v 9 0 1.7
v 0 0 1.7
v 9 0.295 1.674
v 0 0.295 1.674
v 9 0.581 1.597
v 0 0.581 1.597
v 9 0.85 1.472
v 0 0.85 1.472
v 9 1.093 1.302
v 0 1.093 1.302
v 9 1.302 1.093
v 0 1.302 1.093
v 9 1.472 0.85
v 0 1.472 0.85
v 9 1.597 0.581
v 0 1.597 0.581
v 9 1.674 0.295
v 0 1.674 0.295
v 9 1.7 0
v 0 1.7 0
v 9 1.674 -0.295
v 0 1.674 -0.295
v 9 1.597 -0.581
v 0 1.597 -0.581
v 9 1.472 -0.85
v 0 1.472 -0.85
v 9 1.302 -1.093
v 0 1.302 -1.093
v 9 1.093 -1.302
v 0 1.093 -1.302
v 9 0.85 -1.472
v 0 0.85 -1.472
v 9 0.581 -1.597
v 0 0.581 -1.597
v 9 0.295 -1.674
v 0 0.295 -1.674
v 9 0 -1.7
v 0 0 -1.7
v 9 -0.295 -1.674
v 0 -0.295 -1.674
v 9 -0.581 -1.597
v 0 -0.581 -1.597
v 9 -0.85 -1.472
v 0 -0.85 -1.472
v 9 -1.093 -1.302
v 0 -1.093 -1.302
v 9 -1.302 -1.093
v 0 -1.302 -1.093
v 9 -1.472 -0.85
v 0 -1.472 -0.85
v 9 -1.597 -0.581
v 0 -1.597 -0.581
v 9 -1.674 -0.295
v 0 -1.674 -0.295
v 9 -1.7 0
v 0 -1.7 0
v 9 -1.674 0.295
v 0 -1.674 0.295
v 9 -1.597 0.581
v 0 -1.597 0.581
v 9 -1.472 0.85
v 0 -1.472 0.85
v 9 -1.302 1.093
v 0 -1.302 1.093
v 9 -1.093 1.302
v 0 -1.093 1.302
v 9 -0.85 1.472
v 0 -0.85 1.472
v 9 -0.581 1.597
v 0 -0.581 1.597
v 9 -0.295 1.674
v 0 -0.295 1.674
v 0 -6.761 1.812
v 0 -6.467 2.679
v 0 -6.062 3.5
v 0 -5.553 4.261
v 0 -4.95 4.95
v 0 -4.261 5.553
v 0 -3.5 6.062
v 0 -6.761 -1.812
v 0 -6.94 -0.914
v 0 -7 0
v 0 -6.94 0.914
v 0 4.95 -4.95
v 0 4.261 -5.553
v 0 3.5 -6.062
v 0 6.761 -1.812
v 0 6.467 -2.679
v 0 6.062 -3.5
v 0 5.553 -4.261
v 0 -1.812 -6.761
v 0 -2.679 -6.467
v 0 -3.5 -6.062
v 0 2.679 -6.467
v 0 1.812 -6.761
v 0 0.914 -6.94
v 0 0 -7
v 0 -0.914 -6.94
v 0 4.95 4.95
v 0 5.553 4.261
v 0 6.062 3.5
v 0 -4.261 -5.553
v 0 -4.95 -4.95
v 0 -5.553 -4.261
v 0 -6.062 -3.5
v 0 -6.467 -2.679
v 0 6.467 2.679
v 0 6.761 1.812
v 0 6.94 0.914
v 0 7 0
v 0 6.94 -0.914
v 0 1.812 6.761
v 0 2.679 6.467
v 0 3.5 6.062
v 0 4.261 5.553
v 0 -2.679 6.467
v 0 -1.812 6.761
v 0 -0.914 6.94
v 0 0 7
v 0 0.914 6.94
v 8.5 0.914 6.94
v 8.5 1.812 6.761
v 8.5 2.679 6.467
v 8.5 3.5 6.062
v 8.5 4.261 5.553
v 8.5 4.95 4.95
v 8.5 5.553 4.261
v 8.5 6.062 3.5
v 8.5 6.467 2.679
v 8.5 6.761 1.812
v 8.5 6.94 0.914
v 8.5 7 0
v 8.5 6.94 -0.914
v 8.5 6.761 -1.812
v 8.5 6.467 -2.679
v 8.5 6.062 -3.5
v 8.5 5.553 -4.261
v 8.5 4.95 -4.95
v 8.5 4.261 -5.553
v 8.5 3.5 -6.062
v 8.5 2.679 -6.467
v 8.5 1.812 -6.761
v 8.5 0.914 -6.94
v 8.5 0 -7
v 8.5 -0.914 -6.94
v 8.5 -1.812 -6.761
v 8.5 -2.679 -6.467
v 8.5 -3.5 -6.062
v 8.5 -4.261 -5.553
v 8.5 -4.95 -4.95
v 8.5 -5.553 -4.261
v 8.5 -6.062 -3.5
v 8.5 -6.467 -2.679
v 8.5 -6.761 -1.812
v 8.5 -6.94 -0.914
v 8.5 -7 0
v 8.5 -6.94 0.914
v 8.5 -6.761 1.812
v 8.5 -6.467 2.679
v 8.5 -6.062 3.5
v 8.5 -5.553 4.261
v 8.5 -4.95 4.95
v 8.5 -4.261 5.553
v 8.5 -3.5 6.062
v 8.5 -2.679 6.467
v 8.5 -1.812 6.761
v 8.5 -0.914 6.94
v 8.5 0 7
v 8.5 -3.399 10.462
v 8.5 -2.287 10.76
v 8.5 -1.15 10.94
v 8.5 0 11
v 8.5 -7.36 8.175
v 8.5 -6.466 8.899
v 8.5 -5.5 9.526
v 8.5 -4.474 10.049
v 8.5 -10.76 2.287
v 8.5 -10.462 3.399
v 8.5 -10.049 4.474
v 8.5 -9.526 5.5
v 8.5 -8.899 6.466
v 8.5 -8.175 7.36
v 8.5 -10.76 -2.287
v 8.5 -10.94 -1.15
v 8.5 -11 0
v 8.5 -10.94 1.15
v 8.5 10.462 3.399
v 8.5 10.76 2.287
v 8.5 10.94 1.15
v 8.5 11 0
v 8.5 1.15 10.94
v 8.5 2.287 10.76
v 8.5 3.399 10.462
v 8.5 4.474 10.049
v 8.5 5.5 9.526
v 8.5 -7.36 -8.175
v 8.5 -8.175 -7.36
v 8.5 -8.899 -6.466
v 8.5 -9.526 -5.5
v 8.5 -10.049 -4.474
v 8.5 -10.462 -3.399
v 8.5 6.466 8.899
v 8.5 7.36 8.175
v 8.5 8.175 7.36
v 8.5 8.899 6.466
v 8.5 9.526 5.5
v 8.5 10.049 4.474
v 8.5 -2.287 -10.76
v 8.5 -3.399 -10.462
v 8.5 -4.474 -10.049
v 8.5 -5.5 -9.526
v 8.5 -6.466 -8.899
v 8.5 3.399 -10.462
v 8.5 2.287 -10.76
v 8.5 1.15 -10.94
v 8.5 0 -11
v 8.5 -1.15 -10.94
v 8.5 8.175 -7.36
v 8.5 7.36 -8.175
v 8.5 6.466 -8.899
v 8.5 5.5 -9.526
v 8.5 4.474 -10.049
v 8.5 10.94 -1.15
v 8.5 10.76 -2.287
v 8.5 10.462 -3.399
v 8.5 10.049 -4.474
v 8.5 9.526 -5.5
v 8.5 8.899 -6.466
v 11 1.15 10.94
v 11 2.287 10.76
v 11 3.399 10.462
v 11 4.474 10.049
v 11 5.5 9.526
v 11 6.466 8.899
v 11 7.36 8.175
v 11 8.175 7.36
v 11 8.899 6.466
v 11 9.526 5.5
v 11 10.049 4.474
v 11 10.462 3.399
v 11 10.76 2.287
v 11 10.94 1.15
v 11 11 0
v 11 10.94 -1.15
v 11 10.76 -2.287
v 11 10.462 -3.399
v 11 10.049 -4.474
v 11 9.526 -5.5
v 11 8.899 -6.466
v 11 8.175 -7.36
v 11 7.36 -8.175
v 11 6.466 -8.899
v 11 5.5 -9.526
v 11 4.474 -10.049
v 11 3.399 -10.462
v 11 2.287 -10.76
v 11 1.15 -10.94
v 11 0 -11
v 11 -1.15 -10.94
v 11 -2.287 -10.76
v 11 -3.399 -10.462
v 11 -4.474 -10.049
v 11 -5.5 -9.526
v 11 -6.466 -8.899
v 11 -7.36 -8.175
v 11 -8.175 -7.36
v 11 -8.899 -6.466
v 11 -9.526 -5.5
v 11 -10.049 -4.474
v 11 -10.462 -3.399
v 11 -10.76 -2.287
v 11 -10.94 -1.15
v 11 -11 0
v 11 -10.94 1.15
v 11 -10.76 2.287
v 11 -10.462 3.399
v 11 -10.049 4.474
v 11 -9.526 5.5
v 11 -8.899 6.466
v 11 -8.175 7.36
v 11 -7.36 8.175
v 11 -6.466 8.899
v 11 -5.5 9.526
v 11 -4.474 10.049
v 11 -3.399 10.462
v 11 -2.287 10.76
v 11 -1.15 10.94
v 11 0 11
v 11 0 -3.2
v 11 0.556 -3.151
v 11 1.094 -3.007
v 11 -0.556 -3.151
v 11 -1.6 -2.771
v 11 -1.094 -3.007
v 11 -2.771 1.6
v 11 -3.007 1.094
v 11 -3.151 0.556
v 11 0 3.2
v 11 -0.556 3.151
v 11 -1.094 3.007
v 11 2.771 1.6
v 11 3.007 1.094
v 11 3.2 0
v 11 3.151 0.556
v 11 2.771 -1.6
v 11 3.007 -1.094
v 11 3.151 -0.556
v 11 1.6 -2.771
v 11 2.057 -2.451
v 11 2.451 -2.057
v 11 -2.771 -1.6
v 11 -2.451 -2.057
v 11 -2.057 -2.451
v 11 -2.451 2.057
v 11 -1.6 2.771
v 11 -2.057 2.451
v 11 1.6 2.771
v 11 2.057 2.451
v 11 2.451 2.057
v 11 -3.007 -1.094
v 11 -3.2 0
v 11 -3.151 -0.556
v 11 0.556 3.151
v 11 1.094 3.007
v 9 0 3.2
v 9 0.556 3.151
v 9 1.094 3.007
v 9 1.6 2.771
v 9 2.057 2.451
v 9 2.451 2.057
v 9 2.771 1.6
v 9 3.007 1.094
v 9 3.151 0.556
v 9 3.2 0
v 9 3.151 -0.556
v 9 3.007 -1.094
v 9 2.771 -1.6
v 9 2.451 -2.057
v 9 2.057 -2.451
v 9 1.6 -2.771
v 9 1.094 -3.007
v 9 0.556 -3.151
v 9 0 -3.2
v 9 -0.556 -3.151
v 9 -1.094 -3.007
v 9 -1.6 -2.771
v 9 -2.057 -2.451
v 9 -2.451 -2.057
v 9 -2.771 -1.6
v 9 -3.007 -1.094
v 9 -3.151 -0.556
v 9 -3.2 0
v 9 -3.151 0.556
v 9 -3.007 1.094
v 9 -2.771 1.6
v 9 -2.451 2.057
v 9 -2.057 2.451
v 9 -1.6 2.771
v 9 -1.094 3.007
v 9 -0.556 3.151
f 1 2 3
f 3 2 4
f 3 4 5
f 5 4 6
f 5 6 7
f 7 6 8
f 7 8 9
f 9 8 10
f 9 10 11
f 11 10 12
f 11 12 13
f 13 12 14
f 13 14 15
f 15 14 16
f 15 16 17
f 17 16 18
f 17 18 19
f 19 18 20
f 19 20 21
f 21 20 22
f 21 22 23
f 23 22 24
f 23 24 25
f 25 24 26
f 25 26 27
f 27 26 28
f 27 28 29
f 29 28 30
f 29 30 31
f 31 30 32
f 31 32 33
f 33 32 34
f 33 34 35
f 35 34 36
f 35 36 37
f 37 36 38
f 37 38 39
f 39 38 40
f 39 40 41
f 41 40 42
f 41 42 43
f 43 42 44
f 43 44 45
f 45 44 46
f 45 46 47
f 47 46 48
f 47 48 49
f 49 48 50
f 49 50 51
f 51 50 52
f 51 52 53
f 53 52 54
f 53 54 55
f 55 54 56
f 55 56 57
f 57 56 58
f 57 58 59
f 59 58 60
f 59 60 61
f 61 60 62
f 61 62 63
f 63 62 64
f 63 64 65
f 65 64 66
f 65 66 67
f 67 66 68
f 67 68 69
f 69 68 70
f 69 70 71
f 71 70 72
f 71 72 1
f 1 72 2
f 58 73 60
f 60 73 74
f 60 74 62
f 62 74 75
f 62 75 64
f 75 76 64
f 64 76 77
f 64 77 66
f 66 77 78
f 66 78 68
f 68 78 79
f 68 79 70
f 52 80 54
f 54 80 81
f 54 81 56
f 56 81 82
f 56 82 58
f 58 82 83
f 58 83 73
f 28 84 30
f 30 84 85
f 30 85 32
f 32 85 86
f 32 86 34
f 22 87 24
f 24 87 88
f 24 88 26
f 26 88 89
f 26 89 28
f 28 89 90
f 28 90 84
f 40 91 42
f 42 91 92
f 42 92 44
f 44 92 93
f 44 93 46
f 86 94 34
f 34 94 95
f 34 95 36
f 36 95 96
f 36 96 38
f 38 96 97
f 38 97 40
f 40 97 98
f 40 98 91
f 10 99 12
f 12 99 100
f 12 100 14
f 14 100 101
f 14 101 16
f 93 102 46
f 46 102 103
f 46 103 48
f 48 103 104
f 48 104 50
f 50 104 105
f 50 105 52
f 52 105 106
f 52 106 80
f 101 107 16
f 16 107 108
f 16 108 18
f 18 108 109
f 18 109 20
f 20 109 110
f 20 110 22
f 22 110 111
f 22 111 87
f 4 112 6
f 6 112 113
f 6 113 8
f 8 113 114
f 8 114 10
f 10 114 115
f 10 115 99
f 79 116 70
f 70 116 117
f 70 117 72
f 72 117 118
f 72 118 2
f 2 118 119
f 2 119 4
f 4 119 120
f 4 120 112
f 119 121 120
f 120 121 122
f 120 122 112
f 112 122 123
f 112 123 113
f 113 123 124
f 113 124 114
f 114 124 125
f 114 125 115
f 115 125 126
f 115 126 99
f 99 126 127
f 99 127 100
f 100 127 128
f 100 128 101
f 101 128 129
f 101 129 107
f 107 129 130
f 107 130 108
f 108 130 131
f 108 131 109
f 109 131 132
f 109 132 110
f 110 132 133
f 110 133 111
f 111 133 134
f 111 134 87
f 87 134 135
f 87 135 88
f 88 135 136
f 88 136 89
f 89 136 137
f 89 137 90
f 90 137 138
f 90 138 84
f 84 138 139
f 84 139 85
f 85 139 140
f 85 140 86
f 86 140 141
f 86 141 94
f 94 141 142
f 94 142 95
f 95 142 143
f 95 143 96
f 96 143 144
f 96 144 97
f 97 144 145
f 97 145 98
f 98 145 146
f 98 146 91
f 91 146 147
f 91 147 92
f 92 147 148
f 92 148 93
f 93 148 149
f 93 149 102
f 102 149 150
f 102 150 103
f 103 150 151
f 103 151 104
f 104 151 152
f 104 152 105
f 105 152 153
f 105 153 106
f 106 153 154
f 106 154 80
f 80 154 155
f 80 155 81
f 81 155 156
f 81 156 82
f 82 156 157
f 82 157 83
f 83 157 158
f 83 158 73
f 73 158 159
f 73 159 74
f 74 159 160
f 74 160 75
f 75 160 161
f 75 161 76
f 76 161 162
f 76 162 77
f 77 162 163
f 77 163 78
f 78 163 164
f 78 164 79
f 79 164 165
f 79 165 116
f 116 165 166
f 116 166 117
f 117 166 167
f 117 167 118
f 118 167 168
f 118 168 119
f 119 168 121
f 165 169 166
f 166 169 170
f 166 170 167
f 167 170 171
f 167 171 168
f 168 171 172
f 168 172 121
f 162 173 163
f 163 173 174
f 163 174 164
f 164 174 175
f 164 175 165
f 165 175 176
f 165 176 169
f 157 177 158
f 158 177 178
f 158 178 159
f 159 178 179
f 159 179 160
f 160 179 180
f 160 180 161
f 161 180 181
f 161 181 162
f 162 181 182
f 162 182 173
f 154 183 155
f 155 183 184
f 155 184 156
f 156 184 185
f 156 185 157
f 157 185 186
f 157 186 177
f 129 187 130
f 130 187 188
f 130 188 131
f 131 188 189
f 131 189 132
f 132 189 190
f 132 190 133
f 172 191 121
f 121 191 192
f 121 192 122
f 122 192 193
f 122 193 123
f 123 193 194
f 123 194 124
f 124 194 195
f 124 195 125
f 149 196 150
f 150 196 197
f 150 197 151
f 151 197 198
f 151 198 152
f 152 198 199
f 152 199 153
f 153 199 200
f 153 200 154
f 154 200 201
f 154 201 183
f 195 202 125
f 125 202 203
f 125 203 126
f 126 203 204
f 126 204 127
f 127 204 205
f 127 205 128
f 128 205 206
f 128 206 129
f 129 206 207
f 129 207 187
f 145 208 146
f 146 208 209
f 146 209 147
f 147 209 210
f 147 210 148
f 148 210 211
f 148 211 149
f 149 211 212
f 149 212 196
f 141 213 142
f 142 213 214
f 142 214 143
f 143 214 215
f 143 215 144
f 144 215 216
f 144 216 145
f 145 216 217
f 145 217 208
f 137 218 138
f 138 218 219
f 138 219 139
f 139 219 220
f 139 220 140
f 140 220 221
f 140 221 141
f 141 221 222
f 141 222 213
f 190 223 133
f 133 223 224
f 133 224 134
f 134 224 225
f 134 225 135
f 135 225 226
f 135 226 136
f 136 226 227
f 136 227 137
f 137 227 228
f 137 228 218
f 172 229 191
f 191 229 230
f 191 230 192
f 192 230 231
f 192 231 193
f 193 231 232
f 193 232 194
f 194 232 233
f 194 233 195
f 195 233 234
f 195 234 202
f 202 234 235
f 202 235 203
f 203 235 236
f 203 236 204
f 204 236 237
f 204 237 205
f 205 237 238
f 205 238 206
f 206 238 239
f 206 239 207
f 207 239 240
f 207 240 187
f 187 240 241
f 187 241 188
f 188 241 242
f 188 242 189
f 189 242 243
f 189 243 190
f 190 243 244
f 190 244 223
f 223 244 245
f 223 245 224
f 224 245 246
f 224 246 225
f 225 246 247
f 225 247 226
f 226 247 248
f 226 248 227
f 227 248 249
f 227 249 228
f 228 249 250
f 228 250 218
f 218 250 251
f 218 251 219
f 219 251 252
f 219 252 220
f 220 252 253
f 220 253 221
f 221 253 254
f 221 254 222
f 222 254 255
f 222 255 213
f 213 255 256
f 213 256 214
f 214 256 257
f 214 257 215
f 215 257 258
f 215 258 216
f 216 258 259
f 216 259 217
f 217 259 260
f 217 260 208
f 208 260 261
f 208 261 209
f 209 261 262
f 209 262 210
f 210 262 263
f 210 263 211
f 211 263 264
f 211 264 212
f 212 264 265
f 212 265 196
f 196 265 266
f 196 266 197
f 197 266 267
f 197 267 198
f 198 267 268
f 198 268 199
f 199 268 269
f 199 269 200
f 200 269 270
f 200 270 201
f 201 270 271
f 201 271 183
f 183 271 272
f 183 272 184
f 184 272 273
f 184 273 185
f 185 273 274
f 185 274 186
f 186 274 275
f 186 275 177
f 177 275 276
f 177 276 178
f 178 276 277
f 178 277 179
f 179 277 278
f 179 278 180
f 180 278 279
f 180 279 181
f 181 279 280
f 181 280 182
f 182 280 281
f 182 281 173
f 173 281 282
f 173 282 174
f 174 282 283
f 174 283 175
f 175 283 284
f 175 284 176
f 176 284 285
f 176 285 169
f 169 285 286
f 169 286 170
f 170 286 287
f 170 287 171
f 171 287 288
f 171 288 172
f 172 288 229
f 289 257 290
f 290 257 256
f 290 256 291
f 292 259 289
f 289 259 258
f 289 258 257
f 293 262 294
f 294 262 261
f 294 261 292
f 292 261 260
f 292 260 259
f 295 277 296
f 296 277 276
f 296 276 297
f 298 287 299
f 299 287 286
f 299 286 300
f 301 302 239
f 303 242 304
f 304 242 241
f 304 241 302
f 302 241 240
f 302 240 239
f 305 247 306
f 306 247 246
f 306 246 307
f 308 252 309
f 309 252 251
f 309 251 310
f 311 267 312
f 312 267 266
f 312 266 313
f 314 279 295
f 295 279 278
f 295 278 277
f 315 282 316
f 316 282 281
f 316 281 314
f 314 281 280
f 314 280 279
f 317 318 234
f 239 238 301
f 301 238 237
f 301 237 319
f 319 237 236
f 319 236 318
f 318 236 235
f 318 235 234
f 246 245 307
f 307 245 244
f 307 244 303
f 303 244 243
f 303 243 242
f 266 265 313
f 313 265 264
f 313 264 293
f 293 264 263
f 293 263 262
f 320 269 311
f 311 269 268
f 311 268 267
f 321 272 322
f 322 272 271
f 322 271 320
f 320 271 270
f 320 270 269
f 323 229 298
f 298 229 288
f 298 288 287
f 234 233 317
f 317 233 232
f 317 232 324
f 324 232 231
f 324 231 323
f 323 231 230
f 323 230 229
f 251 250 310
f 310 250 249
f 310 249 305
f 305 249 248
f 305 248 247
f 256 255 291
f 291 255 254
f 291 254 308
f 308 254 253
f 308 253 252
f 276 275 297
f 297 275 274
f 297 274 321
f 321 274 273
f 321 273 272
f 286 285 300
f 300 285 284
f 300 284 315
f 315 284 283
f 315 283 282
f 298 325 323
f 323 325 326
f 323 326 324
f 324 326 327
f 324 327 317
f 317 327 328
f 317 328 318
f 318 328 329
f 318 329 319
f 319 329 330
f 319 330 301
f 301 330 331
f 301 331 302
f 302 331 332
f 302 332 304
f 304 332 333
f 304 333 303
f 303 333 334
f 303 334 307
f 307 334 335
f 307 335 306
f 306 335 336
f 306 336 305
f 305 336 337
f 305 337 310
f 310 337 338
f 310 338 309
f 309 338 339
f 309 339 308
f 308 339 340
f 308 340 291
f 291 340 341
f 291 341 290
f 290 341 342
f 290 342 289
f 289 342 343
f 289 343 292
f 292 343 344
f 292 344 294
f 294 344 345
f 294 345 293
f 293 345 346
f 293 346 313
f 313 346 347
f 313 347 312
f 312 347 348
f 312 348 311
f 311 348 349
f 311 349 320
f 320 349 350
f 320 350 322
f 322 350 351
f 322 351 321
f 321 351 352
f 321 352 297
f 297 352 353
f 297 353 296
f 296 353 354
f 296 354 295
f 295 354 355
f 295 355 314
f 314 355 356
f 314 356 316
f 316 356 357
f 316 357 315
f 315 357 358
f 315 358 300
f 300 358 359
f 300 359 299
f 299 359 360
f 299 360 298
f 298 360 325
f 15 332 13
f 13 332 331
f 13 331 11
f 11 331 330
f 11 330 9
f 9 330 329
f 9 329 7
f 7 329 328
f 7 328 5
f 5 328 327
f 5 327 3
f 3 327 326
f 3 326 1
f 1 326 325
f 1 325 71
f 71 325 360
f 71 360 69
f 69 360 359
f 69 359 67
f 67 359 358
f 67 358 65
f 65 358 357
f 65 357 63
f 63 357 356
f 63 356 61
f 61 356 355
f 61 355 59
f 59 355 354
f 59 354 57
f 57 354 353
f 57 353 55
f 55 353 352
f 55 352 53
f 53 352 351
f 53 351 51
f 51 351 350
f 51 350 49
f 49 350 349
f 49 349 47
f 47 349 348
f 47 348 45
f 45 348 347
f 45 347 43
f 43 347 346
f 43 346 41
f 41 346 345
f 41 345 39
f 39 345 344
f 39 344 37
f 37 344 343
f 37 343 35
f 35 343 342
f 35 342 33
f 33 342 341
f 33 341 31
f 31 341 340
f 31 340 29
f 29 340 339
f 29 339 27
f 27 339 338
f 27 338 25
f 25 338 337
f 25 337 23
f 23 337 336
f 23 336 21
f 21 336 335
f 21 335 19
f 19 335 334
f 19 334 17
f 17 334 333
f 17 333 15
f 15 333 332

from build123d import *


with BuildPart() as part:
    # Sketch1 → Pin (revolve)
    with BuildSketch(Plane.XY, mode=Mode.PRIVATE) as pin_sk:
        Polygon((0, 1.7), (0, 7), (8.5, 7), (8.5, 11), (11, 11), (11, 3.2), (9, 3.2), (9, 1.7), align=None)
    revolve(pin_sk.sketch.rotate(Axis((-5, 0, 0), (1, 0, 0)), 90), axis=Axis((-5, 0, 0), (1, 0, 0)))


solid = part.part
